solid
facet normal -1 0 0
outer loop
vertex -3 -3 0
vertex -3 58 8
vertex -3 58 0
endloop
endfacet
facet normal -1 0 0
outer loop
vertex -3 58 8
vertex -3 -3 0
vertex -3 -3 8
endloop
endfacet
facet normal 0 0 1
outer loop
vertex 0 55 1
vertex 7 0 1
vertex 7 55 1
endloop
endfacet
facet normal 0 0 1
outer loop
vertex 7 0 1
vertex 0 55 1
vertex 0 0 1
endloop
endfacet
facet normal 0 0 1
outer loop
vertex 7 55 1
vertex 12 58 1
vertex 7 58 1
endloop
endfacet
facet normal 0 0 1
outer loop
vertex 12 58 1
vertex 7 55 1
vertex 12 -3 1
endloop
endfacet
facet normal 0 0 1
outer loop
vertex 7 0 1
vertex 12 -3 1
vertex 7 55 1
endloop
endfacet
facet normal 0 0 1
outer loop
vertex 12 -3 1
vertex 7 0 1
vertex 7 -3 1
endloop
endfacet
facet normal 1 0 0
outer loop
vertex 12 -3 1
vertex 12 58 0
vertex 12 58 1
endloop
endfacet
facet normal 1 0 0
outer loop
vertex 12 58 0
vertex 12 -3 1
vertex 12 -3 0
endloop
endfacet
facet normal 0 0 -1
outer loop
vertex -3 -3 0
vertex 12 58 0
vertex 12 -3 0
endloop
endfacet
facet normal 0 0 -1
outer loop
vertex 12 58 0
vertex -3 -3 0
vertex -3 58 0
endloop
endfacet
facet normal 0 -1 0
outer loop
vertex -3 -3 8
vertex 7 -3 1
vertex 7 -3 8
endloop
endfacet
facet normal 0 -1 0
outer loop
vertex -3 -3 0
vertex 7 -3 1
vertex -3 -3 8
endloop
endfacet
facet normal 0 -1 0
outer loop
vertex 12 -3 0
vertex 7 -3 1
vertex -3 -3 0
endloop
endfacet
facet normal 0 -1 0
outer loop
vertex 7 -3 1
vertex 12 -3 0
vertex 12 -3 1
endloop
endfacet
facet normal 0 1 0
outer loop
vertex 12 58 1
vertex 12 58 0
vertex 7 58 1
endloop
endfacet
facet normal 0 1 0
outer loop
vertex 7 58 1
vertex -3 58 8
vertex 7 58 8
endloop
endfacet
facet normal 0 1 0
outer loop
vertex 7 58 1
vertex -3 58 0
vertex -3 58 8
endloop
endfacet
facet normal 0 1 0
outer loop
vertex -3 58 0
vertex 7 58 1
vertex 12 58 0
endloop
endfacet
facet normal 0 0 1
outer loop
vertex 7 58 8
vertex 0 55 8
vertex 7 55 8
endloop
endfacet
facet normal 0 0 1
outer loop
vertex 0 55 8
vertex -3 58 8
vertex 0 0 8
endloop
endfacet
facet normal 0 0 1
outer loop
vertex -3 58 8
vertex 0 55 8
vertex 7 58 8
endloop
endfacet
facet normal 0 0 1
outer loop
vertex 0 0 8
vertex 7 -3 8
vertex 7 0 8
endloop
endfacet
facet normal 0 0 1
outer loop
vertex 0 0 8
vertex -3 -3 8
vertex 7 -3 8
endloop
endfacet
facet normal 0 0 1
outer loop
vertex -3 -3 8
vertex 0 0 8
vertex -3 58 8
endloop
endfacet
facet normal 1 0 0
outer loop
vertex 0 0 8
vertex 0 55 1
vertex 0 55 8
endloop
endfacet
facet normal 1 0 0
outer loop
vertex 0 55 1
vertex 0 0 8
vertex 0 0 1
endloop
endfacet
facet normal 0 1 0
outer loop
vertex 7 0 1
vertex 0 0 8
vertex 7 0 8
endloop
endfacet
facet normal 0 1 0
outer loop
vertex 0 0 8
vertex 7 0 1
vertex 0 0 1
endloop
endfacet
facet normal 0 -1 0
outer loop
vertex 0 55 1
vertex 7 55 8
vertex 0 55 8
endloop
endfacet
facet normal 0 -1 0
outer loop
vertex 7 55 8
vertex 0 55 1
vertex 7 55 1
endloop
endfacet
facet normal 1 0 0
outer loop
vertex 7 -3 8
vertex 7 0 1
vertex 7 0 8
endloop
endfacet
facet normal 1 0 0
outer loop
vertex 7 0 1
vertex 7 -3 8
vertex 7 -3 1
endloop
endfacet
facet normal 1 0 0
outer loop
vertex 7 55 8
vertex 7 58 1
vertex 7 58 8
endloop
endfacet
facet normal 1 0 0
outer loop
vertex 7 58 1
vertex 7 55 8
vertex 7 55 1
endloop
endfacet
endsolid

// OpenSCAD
// ============================================================
// Breadboard Side Stop — Test Print
// One side wall with two corner profiles
// ============================================================

$fn = 60;

bb_h      = 55;       // Breadboard depth
bb_stop_h = 7;        // Stop height
bb_stop_w = 3;        // Wall thickness
bb_corner = 7;        // Corner profile toward board center
base_t    = 1;        // Base plate

// --- Base ---
translate([-bb_stop_w, -bb_stop_w, 0])
    cube([bb_stop_w + bb_corner + 5, bb_h + 2 * bb_stop_w, base_t]);

// --- Side wall ---
translate([-bb_stop_w, 0, base_t])
    cube([bb_stop_w, bb_h, bb_stop_h]);

// --- Front corner ---
translate([-bb_stop_w, -bb_stop_w, base_t])
    cube([bb_stop_w + bb_corner, bb_stop_w, bb_stop_h]);

// --- Back corner ---
translate([-bb_stop_w, bb_h, base_t])
    cube([bb_stop_w + bb_corner, bb_stop_w, bb_stop_h]);

echo(str("Test piece: ", bb_stop_w + bb_corner + 5, " x ", bb_h + 2 * bb_stop_w, " x ", base_t + bb_stop_h, " mm"));
